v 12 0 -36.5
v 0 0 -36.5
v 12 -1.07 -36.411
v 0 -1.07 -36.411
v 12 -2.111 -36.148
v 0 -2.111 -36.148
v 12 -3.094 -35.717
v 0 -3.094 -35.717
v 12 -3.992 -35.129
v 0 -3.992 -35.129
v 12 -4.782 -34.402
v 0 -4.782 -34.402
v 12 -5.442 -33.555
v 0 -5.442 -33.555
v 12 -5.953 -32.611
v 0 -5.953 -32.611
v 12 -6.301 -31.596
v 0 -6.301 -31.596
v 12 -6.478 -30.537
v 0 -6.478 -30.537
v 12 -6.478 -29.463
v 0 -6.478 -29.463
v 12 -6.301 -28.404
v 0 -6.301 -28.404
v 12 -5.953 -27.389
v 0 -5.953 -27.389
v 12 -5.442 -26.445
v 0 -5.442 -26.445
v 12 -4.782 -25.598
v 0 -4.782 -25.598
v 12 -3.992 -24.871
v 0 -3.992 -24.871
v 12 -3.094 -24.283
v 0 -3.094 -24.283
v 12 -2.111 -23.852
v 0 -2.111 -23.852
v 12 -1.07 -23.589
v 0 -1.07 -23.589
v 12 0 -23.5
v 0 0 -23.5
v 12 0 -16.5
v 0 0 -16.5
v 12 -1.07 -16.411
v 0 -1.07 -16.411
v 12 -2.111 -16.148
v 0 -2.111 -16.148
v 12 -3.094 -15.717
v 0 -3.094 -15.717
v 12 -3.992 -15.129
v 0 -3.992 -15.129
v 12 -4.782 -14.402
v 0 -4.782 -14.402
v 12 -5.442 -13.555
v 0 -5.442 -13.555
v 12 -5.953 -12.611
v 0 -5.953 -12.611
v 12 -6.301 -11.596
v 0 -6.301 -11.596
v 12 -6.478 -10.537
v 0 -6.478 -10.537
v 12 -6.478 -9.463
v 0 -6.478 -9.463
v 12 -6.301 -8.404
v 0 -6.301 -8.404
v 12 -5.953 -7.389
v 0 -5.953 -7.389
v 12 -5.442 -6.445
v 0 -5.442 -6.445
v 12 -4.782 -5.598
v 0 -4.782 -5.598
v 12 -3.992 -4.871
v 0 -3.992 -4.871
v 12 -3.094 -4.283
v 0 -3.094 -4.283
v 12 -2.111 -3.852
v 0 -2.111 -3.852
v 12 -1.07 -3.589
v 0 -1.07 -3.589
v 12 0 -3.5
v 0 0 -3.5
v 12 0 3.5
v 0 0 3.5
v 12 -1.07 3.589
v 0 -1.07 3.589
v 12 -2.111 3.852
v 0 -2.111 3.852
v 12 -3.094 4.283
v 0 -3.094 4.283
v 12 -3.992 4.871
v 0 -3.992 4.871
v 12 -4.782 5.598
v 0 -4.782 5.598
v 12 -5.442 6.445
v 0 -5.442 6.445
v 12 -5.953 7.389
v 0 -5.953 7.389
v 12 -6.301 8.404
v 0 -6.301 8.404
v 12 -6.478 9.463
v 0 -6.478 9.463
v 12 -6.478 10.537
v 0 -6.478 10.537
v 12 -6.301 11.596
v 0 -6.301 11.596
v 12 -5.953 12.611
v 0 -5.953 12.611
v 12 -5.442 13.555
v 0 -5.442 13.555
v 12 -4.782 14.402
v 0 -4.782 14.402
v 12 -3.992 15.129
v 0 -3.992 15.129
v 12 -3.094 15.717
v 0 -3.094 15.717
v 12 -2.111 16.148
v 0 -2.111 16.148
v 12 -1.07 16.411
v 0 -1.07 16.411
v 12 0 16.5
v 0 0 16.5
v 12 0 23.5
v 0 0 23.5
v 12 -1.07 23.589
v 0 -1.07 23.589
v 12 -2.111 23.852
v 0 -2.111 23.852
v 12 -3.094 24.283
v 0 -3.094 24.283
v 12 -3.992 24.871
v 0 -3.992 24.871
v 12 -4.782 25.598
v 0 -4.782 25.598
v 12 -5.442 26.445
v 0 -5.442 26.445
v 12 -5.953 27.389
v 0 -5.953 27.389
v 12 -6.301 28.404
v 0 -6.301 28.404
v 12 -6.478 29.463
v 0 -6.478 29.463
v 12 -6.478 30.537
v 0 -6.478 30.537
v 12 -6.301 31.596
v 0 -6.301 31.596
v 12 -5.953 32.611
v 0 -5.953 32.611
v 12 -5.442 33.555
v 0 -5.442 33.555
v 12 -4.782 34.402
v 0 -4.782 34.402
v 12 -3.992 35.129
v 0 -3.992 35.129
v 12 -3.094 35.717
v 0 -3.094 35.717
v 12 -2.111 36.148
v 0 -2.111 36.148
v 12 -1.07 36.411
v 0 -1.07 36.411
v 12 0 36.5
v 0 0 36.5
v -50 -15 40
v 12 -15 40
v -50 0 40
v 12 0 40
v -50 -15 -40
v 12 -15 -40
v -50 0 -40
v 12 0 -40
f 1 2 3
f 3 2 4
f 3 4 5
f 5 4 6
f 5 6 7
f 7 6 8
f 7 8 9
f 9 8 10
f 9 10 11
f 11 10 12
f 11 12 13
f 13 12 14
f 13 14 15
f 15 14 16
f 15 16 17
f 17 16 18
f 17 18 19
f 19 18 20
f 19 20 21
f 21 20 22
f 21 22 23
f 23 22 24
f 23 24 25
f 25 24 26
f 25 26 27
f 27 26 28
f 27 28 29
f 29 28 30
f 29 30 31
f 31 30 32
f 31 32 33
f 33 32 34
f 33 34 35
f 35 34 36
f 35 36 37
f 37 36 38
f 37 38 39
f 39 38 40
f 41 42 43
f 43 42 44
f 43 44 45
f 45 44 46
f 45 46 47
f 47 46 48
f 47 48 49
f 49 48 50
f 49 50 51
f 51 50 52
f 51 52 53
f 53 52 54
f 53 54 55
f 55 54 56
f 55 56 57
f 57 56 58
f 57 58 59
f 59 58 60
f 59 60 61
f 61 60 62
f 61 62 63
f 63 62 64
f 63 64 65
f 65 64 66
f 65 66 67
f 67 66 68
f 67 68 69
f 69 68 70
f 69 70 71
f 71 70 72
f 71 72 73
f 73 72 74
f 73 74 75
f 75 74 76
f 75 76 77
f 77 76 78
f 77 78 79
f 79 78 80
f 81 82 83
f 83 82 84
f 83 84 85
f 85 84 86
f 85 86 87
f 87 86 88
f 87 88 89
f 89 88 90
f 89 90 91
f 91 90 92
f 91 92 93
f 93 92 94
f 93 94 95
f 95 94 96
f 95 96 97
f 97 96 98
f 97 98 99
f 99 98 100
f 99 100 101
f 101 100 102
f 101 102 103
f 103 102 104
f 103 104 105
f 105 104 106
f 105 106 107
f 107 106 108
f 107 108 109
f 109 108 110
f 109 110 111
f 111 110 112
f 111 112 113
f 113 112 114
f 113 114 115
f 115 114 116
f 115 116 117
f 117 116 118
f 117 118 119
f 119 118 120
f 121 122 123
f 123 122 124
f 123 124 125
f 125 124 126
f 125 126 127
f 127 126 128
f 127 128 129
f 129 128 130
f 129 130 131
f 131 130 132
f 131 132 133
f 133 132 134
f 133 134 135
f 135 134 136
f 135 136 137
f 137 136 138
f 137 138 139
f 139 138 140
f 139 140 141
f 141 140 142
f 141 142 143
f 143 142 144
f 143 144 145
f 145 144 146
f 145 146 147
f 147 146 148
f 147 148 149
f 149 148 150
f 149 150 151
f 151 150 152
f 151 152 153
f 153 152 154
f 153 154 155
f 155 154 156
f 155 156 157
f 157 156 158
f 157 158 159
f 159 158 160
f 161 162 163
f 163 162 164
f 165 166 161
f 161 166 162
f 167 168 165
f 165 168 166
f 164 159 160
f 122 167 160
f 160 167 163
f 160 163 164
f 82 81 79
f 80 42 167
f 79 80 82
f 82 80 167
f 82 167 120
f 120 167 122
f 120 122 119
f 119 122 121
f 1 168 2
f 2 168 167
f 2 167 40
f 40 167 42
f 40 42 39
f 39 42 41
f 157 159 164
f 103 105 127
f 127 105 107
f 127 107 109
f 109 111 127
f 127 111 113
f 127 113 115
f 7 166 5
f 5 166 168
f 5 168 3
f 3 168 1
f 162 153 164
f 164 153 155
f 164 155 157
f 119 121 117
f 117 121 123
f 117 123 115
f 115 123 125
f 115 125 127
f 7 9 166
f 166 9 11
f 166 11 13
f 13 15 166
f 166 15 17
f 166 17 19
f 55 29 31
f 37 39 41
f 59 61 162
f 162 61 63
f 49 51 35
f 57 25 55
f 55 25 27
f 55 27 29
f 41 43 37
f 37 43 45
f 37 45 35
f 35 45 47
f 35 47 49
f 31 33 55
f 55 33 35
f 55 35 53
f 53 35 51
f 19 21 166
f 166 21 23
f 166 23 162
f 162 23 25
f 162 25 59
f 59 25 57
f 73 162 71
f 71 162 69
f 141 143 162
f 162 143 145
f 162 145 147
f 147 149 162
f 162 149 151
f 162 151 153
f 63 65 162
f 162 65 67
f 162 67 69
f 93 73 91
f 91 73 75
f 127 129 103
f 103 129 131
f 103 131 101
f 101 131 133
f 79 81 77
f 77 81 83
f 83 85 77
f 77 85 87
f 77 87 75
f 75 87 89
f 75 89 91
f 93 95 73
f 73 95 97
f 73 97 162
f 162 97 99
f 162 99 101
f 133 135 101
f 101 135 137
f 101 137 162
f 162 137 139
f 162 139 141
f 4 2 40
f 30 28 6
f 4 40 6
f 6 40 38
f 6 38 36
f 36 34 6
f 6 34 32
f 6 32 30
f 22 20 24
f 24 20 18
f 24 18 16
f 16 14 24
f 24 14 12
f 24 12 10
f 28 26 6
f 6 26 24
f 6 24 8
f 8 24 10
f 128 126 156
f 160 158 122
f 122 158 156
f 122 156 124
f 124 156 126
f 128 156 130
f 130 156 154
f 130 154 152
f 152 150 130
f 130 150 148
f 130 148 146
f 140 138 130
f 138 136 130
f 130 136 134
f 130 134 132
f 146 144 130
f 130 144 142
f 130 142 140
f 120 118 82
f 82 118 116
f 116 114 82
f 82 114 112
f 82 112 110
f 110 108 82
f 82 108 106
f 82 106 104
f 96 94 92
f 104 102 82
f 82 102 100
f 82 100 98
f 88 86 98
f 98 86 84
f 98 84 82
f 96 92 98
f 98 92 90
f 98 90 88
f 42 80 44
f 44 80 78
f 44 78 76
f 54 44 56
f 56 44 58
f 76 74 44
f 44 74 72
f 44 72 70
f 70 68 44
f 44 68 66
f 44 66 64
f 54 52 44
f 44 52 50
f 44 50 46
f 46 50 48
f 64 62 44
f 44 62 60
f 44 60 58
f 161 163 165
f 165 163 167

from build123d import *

# Parameters (mm, degrees)
BOSS_EXTRUDE1_DEPTH = 12
SKETCH2_W           = 80
SKETCH2_H           = 15
BOSS_EXTRUDE2_DEPTH = 50


with BuildPart() as part:
    # Sketch1 → Boss-Extrude1 (new body)
    with BuildSketch(Plane(origin=(0, 0, 0), x_dir=(0, 0, -1), z_dir=(1, 0, 0))):
        with BuildLine():
            Line((40, 0), (36.5, 0))
            ThreePointArc((36.5, 0), (30, -6.5), (23.5, 0))
            Line((23.5, 0), (16.5, 0))
            ThreePointArc((16.5, 0), (10, -6.5), (3.5, 0))
            Line((3.5, 0), (-3.5, 0))
            ThreePointArc((-3.5, 0), (-10, -6.5), (-16.5, 0))
            Line((-16.5, 0), (-23.5, 0))
            ThreePointArc((-23.5, 0), (-30, -6.5), (-36.5, 0))
            Line((-36.5, 0), (-40, 0))
            Line((-40, 0), (-40, -15))
            Line((-40, -15), (40, -15))
            Line((40, -15), (40, 0))
        make_face()
    extrude(amount=BOSS_EXTRUDE1_DEPTH)

    # Sketch2 → Boss-Extrude2 (add)
    with BuildSketch(Plane.ZY):
        with Locations((0, -7.5)):
            Rectangle(SKETCH2_W, SKETCH2_H)
    extrude(amount=BOSS_EXTRUDE2_DEPTH)


solid = part.part
